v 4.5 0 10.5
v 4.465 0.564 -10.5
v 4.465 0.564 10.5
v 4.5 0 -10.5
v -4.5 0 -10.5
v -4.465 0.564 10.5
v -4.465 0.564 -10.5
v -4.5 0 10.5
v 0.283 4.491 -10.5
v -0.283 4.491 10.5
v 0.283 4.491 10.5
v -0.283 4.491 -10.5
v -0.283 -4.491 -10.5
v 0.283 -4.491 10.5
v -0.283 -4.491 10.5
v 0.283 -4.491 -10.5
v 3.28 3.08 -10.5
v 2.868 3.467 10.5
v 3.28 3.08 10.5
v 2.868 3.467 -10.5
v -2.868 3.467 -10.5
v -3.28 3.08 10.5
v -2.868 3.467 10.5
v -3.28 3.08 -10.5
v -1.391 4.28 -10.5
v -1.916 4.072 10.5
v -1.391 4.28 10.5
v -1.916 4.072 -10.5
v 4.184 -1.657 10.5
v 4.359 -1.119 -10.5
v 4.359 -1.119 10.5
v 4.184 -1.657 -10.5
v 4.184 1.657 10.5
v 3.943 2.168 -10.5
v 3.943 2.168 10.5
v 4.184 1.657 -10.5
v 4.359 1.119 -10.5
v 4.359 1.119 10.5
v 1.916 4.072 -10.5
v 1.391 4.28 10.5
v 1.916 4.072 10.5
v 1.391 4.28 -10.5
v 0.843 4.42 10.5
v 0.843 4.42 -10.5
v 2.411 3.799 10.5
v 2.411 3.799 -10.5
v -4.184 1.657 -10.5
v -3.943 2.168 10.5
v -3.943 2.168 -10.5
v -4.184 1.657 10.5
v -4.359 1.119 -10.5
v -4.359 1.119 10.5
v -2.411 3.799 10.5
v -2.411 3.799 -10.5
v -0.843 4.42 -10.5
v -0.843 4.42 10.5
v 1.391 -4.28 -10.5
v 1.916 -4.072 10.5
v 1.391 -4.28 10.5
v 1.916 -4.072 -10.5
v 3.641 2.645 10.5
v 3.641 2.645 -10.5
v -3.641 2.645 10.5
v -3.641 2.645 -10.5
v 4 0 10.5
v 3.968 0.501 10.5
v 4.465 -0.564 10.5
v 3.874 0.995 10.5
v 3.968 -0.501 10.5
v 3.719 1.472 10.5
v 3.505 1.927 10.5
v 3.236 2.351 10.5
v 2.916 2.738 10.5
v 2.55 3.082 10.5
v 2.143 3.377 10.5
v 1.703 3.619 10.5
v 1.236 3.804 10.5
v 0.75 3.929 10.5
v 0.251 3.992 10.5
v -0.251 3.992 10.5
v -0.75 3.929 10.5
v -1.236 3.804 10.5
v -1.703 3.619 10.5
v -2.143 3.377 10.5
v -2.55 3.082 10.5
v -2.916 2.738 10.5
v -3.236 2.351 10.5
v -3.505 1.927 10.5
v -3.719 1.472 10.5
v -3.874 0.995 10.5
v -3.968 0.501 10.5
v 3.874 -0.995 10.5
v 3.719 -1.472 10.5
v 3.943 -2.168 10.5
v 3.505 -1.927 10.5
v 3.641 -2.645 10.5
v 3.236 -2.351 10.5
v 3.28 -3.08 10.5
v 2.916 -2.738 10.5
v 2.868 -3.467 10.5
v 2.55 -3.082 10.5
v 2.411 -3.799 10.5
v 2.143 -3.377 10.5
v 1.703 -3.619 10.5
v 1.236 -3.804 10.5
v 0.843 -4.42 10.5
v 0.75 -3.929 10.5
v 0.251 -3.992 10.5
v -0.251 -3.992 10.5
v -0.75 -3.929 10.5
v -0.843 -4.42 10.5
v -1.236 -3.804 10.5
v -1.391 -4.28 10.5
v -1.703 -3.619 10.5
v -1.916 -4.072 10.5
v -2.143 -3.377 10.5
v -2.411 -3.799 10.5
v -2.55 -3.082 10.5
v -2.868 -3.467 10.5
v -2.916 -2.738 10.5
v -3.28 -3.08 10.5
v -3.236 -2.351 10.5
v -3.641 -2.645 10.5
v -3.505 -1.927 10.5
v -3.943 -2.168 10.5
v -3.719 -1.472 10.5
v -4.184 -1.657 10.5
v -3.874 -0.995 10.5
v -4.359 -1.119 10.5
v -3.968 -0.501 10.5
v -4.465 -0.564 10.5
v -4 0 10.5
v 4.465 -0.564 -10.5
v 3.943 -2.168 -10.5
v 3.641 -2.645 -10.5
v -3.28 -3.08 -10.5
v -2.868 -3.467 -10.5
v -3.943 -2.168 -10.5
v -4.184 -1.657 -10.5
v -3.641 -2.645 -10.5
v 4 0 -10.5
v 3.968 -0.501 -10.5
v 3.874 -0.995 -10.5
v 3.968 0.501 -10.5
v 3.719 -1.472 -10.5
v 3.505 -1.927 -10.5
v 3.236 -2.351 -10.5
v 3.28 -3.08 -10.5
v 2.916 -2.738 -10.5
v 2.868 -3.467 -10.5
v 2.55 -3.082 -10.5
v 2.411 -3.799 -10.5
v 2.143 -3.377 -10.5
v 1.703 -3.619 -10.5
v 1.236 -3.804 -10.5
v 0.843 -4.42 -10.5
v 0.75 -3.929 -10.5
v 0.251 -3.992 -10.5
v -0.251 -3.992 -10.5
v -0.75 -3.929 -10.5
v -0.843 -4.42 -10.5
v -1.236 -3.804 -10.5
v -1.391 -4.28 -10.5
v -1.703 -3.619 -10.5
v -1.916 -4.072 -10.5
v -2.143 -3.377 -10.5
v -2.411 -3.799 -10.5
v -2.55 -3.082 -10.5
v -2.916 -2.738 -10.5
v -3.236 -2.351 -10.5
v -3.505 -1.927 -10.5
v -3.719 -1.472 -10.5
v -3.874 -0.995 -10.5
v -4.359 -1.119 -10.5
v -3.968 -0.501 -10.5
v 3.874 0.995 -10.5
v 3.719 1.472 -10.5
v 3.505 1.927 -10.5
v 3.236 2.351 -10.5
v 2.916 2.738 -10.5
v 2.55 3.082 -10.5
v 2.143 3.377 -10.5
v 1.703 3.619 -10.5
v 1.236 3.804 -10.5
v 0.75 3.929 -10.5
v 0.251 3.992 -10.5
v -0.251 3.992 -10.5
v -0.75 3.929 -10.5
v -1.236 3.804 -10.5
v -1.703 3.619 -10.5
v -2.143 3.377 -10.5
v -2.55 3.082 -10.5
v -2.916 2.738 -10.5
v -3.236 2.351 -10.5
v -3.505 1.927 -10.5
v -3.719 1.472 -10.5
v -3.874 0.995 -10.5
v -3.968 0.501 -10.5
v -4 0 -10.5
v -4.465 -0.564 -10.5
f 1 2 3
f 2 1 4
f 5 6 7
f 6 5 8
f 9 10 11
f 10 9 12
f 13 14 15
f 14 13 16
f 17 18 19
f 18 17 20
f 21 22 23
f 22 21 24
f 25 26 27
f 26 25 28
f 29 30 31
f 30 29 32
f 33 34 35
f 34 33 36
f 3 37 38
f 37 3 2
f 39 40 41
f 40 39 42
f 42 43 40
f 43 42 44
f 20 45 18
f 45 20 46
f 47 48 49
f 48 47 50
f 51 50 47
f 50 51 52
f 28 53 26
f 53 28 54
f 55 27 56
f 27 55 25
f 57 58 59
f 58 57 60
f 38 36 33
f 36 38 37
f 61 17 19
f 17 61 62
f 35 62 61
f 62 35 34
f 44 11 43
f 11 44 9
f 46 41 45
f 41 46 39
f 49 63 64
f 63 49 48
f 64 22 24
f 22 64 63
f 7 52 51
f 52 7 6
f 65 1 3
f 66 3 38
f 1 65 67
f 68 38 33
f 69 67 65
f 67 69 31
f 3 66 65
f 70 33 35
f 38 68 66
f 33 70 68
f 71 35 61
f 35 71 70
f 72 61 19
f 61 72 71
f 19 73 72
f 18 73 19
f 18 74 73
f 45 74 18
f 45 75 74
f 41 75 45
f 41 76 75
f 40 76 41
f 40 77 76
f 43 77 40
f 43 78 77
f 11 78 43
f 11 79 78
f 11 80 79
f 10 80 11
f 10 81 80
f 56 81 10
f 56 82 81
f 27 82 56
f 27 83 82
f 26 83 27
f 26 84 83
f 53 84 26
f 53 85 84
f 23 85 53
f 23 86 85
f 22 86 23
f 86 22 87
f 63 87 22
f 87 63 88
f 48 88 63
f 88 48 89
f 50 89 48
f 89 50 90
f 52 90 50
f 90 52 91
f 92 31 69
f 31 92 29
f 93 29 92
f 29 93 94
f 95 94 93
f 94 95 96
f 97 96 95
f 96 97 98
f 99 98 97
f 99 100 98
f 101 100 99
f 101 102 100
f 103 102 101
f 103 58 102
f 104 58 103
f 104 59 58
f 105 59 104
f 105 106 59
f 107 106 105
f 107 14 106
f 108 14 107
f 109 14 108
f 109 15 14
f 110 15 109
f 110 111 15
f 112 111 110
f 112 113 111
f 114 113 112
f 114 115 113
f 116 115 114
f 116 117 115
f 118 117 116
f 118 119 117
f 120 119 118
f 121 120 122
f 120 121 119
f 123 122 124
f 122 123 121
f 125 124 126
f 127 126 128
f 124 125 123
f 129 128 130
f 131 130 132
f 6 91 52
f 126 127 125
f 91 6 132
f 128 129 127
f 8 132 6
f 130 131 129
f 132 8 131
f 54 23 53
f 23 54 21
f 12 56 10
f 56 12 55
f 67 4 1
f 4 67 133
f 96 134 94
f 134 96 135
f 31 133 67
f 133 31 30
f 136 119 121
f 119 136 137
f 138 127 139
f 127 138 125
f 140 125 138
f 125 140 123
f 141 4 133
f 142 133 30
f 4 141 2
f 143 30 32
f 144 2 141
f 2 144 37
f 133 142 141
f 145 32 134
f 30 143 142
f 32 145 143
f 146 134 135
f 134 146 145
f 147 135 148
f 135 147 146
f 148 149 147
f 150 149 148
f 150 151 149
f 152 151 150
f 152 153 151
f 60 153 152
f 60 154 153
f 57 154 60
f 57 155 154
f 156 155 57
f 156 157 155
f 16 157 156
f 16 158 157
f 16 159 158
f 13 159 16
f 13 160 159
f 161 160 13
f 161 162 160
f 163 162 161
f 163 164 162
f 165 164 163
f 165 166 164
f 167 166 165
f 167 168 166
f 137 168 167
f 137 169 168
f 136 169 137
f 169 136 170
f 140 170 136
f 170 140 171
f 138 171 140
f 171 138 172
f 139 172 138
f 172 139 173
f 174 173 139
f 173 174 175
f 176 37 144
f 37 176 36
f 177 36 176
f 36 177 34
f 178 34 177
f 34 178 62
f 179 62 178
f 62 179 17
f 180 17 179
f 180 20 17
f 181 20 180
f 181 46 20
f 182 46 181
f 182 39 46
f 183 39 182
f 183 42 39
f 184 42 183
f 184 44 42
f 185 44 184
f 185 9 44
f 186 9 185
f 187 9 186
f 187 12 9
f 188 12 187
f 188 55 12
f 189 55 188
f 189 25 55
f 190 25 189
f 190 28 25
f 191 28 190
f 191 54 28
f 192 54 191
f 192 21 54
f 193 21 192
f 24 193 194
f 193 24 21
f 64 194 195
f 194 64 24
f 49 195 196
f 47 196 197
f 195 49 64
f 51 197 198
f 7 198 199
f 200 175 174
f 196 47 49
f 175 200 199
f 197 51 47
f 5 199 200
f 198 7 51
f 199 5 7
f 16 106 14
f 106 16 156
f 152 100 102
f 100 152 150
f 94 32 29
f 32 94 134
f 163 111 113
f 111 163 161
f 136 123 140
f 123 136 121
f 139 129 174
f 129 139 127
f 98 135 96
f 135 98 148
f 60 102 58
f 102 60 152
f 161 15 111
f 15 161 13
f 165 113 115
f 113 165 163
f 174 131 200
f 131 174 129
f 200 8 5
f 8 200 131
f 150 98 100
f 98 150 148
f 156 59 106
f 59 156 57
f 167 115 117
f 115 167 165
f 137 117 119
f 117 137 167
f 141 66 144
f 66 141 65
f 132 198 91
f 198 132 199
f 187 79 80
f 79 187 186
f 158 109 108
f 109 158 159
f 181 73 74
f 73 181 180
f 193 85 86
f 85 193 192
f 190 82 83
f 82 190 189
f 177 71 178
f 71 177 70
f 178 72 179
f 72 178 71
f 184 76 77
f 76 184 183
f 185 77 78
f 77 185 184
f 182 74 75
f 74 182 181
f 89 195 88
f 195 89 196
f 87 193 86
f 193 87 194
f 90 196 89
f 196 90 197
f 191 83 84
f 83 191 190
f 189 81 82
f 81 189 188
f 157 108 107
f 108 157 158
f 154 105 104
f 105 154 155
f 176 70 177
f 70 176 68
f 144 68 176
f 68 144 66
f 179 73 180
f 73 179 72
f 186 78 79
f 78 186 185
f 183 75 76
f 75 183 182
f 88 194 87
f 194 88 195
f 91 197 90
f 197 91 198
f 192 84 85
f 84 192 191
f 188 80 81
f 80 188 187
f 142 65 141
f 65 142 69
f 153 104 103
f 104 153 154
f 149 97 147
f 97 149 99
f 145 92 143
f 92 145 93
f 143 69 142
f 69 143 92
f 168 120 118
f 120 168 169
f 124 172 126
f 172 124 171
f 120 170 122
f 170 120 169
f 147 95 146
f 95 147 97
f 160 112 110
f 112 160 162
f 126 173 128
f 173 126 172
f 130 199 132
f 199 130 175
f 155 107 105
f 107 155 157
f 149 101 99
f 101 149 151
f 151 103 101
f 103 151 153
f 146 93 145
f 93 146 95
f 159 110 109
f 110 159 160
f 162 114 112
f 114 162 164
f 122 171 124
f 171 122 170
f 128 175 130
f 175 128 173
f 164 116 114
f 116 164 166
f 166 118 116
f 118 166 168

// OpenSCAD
$fn = 50;


difference() {
	union() {
		translate(v = [0, 0, -10.5000000000]) {
			cylinder(h = 21, r = 4.5000000000);
		}
	}
	union() {
		translate(v = [0, 0, -100.0000000000]) {
			cylinder(h = 200, r = 4);
		}
	}
}
